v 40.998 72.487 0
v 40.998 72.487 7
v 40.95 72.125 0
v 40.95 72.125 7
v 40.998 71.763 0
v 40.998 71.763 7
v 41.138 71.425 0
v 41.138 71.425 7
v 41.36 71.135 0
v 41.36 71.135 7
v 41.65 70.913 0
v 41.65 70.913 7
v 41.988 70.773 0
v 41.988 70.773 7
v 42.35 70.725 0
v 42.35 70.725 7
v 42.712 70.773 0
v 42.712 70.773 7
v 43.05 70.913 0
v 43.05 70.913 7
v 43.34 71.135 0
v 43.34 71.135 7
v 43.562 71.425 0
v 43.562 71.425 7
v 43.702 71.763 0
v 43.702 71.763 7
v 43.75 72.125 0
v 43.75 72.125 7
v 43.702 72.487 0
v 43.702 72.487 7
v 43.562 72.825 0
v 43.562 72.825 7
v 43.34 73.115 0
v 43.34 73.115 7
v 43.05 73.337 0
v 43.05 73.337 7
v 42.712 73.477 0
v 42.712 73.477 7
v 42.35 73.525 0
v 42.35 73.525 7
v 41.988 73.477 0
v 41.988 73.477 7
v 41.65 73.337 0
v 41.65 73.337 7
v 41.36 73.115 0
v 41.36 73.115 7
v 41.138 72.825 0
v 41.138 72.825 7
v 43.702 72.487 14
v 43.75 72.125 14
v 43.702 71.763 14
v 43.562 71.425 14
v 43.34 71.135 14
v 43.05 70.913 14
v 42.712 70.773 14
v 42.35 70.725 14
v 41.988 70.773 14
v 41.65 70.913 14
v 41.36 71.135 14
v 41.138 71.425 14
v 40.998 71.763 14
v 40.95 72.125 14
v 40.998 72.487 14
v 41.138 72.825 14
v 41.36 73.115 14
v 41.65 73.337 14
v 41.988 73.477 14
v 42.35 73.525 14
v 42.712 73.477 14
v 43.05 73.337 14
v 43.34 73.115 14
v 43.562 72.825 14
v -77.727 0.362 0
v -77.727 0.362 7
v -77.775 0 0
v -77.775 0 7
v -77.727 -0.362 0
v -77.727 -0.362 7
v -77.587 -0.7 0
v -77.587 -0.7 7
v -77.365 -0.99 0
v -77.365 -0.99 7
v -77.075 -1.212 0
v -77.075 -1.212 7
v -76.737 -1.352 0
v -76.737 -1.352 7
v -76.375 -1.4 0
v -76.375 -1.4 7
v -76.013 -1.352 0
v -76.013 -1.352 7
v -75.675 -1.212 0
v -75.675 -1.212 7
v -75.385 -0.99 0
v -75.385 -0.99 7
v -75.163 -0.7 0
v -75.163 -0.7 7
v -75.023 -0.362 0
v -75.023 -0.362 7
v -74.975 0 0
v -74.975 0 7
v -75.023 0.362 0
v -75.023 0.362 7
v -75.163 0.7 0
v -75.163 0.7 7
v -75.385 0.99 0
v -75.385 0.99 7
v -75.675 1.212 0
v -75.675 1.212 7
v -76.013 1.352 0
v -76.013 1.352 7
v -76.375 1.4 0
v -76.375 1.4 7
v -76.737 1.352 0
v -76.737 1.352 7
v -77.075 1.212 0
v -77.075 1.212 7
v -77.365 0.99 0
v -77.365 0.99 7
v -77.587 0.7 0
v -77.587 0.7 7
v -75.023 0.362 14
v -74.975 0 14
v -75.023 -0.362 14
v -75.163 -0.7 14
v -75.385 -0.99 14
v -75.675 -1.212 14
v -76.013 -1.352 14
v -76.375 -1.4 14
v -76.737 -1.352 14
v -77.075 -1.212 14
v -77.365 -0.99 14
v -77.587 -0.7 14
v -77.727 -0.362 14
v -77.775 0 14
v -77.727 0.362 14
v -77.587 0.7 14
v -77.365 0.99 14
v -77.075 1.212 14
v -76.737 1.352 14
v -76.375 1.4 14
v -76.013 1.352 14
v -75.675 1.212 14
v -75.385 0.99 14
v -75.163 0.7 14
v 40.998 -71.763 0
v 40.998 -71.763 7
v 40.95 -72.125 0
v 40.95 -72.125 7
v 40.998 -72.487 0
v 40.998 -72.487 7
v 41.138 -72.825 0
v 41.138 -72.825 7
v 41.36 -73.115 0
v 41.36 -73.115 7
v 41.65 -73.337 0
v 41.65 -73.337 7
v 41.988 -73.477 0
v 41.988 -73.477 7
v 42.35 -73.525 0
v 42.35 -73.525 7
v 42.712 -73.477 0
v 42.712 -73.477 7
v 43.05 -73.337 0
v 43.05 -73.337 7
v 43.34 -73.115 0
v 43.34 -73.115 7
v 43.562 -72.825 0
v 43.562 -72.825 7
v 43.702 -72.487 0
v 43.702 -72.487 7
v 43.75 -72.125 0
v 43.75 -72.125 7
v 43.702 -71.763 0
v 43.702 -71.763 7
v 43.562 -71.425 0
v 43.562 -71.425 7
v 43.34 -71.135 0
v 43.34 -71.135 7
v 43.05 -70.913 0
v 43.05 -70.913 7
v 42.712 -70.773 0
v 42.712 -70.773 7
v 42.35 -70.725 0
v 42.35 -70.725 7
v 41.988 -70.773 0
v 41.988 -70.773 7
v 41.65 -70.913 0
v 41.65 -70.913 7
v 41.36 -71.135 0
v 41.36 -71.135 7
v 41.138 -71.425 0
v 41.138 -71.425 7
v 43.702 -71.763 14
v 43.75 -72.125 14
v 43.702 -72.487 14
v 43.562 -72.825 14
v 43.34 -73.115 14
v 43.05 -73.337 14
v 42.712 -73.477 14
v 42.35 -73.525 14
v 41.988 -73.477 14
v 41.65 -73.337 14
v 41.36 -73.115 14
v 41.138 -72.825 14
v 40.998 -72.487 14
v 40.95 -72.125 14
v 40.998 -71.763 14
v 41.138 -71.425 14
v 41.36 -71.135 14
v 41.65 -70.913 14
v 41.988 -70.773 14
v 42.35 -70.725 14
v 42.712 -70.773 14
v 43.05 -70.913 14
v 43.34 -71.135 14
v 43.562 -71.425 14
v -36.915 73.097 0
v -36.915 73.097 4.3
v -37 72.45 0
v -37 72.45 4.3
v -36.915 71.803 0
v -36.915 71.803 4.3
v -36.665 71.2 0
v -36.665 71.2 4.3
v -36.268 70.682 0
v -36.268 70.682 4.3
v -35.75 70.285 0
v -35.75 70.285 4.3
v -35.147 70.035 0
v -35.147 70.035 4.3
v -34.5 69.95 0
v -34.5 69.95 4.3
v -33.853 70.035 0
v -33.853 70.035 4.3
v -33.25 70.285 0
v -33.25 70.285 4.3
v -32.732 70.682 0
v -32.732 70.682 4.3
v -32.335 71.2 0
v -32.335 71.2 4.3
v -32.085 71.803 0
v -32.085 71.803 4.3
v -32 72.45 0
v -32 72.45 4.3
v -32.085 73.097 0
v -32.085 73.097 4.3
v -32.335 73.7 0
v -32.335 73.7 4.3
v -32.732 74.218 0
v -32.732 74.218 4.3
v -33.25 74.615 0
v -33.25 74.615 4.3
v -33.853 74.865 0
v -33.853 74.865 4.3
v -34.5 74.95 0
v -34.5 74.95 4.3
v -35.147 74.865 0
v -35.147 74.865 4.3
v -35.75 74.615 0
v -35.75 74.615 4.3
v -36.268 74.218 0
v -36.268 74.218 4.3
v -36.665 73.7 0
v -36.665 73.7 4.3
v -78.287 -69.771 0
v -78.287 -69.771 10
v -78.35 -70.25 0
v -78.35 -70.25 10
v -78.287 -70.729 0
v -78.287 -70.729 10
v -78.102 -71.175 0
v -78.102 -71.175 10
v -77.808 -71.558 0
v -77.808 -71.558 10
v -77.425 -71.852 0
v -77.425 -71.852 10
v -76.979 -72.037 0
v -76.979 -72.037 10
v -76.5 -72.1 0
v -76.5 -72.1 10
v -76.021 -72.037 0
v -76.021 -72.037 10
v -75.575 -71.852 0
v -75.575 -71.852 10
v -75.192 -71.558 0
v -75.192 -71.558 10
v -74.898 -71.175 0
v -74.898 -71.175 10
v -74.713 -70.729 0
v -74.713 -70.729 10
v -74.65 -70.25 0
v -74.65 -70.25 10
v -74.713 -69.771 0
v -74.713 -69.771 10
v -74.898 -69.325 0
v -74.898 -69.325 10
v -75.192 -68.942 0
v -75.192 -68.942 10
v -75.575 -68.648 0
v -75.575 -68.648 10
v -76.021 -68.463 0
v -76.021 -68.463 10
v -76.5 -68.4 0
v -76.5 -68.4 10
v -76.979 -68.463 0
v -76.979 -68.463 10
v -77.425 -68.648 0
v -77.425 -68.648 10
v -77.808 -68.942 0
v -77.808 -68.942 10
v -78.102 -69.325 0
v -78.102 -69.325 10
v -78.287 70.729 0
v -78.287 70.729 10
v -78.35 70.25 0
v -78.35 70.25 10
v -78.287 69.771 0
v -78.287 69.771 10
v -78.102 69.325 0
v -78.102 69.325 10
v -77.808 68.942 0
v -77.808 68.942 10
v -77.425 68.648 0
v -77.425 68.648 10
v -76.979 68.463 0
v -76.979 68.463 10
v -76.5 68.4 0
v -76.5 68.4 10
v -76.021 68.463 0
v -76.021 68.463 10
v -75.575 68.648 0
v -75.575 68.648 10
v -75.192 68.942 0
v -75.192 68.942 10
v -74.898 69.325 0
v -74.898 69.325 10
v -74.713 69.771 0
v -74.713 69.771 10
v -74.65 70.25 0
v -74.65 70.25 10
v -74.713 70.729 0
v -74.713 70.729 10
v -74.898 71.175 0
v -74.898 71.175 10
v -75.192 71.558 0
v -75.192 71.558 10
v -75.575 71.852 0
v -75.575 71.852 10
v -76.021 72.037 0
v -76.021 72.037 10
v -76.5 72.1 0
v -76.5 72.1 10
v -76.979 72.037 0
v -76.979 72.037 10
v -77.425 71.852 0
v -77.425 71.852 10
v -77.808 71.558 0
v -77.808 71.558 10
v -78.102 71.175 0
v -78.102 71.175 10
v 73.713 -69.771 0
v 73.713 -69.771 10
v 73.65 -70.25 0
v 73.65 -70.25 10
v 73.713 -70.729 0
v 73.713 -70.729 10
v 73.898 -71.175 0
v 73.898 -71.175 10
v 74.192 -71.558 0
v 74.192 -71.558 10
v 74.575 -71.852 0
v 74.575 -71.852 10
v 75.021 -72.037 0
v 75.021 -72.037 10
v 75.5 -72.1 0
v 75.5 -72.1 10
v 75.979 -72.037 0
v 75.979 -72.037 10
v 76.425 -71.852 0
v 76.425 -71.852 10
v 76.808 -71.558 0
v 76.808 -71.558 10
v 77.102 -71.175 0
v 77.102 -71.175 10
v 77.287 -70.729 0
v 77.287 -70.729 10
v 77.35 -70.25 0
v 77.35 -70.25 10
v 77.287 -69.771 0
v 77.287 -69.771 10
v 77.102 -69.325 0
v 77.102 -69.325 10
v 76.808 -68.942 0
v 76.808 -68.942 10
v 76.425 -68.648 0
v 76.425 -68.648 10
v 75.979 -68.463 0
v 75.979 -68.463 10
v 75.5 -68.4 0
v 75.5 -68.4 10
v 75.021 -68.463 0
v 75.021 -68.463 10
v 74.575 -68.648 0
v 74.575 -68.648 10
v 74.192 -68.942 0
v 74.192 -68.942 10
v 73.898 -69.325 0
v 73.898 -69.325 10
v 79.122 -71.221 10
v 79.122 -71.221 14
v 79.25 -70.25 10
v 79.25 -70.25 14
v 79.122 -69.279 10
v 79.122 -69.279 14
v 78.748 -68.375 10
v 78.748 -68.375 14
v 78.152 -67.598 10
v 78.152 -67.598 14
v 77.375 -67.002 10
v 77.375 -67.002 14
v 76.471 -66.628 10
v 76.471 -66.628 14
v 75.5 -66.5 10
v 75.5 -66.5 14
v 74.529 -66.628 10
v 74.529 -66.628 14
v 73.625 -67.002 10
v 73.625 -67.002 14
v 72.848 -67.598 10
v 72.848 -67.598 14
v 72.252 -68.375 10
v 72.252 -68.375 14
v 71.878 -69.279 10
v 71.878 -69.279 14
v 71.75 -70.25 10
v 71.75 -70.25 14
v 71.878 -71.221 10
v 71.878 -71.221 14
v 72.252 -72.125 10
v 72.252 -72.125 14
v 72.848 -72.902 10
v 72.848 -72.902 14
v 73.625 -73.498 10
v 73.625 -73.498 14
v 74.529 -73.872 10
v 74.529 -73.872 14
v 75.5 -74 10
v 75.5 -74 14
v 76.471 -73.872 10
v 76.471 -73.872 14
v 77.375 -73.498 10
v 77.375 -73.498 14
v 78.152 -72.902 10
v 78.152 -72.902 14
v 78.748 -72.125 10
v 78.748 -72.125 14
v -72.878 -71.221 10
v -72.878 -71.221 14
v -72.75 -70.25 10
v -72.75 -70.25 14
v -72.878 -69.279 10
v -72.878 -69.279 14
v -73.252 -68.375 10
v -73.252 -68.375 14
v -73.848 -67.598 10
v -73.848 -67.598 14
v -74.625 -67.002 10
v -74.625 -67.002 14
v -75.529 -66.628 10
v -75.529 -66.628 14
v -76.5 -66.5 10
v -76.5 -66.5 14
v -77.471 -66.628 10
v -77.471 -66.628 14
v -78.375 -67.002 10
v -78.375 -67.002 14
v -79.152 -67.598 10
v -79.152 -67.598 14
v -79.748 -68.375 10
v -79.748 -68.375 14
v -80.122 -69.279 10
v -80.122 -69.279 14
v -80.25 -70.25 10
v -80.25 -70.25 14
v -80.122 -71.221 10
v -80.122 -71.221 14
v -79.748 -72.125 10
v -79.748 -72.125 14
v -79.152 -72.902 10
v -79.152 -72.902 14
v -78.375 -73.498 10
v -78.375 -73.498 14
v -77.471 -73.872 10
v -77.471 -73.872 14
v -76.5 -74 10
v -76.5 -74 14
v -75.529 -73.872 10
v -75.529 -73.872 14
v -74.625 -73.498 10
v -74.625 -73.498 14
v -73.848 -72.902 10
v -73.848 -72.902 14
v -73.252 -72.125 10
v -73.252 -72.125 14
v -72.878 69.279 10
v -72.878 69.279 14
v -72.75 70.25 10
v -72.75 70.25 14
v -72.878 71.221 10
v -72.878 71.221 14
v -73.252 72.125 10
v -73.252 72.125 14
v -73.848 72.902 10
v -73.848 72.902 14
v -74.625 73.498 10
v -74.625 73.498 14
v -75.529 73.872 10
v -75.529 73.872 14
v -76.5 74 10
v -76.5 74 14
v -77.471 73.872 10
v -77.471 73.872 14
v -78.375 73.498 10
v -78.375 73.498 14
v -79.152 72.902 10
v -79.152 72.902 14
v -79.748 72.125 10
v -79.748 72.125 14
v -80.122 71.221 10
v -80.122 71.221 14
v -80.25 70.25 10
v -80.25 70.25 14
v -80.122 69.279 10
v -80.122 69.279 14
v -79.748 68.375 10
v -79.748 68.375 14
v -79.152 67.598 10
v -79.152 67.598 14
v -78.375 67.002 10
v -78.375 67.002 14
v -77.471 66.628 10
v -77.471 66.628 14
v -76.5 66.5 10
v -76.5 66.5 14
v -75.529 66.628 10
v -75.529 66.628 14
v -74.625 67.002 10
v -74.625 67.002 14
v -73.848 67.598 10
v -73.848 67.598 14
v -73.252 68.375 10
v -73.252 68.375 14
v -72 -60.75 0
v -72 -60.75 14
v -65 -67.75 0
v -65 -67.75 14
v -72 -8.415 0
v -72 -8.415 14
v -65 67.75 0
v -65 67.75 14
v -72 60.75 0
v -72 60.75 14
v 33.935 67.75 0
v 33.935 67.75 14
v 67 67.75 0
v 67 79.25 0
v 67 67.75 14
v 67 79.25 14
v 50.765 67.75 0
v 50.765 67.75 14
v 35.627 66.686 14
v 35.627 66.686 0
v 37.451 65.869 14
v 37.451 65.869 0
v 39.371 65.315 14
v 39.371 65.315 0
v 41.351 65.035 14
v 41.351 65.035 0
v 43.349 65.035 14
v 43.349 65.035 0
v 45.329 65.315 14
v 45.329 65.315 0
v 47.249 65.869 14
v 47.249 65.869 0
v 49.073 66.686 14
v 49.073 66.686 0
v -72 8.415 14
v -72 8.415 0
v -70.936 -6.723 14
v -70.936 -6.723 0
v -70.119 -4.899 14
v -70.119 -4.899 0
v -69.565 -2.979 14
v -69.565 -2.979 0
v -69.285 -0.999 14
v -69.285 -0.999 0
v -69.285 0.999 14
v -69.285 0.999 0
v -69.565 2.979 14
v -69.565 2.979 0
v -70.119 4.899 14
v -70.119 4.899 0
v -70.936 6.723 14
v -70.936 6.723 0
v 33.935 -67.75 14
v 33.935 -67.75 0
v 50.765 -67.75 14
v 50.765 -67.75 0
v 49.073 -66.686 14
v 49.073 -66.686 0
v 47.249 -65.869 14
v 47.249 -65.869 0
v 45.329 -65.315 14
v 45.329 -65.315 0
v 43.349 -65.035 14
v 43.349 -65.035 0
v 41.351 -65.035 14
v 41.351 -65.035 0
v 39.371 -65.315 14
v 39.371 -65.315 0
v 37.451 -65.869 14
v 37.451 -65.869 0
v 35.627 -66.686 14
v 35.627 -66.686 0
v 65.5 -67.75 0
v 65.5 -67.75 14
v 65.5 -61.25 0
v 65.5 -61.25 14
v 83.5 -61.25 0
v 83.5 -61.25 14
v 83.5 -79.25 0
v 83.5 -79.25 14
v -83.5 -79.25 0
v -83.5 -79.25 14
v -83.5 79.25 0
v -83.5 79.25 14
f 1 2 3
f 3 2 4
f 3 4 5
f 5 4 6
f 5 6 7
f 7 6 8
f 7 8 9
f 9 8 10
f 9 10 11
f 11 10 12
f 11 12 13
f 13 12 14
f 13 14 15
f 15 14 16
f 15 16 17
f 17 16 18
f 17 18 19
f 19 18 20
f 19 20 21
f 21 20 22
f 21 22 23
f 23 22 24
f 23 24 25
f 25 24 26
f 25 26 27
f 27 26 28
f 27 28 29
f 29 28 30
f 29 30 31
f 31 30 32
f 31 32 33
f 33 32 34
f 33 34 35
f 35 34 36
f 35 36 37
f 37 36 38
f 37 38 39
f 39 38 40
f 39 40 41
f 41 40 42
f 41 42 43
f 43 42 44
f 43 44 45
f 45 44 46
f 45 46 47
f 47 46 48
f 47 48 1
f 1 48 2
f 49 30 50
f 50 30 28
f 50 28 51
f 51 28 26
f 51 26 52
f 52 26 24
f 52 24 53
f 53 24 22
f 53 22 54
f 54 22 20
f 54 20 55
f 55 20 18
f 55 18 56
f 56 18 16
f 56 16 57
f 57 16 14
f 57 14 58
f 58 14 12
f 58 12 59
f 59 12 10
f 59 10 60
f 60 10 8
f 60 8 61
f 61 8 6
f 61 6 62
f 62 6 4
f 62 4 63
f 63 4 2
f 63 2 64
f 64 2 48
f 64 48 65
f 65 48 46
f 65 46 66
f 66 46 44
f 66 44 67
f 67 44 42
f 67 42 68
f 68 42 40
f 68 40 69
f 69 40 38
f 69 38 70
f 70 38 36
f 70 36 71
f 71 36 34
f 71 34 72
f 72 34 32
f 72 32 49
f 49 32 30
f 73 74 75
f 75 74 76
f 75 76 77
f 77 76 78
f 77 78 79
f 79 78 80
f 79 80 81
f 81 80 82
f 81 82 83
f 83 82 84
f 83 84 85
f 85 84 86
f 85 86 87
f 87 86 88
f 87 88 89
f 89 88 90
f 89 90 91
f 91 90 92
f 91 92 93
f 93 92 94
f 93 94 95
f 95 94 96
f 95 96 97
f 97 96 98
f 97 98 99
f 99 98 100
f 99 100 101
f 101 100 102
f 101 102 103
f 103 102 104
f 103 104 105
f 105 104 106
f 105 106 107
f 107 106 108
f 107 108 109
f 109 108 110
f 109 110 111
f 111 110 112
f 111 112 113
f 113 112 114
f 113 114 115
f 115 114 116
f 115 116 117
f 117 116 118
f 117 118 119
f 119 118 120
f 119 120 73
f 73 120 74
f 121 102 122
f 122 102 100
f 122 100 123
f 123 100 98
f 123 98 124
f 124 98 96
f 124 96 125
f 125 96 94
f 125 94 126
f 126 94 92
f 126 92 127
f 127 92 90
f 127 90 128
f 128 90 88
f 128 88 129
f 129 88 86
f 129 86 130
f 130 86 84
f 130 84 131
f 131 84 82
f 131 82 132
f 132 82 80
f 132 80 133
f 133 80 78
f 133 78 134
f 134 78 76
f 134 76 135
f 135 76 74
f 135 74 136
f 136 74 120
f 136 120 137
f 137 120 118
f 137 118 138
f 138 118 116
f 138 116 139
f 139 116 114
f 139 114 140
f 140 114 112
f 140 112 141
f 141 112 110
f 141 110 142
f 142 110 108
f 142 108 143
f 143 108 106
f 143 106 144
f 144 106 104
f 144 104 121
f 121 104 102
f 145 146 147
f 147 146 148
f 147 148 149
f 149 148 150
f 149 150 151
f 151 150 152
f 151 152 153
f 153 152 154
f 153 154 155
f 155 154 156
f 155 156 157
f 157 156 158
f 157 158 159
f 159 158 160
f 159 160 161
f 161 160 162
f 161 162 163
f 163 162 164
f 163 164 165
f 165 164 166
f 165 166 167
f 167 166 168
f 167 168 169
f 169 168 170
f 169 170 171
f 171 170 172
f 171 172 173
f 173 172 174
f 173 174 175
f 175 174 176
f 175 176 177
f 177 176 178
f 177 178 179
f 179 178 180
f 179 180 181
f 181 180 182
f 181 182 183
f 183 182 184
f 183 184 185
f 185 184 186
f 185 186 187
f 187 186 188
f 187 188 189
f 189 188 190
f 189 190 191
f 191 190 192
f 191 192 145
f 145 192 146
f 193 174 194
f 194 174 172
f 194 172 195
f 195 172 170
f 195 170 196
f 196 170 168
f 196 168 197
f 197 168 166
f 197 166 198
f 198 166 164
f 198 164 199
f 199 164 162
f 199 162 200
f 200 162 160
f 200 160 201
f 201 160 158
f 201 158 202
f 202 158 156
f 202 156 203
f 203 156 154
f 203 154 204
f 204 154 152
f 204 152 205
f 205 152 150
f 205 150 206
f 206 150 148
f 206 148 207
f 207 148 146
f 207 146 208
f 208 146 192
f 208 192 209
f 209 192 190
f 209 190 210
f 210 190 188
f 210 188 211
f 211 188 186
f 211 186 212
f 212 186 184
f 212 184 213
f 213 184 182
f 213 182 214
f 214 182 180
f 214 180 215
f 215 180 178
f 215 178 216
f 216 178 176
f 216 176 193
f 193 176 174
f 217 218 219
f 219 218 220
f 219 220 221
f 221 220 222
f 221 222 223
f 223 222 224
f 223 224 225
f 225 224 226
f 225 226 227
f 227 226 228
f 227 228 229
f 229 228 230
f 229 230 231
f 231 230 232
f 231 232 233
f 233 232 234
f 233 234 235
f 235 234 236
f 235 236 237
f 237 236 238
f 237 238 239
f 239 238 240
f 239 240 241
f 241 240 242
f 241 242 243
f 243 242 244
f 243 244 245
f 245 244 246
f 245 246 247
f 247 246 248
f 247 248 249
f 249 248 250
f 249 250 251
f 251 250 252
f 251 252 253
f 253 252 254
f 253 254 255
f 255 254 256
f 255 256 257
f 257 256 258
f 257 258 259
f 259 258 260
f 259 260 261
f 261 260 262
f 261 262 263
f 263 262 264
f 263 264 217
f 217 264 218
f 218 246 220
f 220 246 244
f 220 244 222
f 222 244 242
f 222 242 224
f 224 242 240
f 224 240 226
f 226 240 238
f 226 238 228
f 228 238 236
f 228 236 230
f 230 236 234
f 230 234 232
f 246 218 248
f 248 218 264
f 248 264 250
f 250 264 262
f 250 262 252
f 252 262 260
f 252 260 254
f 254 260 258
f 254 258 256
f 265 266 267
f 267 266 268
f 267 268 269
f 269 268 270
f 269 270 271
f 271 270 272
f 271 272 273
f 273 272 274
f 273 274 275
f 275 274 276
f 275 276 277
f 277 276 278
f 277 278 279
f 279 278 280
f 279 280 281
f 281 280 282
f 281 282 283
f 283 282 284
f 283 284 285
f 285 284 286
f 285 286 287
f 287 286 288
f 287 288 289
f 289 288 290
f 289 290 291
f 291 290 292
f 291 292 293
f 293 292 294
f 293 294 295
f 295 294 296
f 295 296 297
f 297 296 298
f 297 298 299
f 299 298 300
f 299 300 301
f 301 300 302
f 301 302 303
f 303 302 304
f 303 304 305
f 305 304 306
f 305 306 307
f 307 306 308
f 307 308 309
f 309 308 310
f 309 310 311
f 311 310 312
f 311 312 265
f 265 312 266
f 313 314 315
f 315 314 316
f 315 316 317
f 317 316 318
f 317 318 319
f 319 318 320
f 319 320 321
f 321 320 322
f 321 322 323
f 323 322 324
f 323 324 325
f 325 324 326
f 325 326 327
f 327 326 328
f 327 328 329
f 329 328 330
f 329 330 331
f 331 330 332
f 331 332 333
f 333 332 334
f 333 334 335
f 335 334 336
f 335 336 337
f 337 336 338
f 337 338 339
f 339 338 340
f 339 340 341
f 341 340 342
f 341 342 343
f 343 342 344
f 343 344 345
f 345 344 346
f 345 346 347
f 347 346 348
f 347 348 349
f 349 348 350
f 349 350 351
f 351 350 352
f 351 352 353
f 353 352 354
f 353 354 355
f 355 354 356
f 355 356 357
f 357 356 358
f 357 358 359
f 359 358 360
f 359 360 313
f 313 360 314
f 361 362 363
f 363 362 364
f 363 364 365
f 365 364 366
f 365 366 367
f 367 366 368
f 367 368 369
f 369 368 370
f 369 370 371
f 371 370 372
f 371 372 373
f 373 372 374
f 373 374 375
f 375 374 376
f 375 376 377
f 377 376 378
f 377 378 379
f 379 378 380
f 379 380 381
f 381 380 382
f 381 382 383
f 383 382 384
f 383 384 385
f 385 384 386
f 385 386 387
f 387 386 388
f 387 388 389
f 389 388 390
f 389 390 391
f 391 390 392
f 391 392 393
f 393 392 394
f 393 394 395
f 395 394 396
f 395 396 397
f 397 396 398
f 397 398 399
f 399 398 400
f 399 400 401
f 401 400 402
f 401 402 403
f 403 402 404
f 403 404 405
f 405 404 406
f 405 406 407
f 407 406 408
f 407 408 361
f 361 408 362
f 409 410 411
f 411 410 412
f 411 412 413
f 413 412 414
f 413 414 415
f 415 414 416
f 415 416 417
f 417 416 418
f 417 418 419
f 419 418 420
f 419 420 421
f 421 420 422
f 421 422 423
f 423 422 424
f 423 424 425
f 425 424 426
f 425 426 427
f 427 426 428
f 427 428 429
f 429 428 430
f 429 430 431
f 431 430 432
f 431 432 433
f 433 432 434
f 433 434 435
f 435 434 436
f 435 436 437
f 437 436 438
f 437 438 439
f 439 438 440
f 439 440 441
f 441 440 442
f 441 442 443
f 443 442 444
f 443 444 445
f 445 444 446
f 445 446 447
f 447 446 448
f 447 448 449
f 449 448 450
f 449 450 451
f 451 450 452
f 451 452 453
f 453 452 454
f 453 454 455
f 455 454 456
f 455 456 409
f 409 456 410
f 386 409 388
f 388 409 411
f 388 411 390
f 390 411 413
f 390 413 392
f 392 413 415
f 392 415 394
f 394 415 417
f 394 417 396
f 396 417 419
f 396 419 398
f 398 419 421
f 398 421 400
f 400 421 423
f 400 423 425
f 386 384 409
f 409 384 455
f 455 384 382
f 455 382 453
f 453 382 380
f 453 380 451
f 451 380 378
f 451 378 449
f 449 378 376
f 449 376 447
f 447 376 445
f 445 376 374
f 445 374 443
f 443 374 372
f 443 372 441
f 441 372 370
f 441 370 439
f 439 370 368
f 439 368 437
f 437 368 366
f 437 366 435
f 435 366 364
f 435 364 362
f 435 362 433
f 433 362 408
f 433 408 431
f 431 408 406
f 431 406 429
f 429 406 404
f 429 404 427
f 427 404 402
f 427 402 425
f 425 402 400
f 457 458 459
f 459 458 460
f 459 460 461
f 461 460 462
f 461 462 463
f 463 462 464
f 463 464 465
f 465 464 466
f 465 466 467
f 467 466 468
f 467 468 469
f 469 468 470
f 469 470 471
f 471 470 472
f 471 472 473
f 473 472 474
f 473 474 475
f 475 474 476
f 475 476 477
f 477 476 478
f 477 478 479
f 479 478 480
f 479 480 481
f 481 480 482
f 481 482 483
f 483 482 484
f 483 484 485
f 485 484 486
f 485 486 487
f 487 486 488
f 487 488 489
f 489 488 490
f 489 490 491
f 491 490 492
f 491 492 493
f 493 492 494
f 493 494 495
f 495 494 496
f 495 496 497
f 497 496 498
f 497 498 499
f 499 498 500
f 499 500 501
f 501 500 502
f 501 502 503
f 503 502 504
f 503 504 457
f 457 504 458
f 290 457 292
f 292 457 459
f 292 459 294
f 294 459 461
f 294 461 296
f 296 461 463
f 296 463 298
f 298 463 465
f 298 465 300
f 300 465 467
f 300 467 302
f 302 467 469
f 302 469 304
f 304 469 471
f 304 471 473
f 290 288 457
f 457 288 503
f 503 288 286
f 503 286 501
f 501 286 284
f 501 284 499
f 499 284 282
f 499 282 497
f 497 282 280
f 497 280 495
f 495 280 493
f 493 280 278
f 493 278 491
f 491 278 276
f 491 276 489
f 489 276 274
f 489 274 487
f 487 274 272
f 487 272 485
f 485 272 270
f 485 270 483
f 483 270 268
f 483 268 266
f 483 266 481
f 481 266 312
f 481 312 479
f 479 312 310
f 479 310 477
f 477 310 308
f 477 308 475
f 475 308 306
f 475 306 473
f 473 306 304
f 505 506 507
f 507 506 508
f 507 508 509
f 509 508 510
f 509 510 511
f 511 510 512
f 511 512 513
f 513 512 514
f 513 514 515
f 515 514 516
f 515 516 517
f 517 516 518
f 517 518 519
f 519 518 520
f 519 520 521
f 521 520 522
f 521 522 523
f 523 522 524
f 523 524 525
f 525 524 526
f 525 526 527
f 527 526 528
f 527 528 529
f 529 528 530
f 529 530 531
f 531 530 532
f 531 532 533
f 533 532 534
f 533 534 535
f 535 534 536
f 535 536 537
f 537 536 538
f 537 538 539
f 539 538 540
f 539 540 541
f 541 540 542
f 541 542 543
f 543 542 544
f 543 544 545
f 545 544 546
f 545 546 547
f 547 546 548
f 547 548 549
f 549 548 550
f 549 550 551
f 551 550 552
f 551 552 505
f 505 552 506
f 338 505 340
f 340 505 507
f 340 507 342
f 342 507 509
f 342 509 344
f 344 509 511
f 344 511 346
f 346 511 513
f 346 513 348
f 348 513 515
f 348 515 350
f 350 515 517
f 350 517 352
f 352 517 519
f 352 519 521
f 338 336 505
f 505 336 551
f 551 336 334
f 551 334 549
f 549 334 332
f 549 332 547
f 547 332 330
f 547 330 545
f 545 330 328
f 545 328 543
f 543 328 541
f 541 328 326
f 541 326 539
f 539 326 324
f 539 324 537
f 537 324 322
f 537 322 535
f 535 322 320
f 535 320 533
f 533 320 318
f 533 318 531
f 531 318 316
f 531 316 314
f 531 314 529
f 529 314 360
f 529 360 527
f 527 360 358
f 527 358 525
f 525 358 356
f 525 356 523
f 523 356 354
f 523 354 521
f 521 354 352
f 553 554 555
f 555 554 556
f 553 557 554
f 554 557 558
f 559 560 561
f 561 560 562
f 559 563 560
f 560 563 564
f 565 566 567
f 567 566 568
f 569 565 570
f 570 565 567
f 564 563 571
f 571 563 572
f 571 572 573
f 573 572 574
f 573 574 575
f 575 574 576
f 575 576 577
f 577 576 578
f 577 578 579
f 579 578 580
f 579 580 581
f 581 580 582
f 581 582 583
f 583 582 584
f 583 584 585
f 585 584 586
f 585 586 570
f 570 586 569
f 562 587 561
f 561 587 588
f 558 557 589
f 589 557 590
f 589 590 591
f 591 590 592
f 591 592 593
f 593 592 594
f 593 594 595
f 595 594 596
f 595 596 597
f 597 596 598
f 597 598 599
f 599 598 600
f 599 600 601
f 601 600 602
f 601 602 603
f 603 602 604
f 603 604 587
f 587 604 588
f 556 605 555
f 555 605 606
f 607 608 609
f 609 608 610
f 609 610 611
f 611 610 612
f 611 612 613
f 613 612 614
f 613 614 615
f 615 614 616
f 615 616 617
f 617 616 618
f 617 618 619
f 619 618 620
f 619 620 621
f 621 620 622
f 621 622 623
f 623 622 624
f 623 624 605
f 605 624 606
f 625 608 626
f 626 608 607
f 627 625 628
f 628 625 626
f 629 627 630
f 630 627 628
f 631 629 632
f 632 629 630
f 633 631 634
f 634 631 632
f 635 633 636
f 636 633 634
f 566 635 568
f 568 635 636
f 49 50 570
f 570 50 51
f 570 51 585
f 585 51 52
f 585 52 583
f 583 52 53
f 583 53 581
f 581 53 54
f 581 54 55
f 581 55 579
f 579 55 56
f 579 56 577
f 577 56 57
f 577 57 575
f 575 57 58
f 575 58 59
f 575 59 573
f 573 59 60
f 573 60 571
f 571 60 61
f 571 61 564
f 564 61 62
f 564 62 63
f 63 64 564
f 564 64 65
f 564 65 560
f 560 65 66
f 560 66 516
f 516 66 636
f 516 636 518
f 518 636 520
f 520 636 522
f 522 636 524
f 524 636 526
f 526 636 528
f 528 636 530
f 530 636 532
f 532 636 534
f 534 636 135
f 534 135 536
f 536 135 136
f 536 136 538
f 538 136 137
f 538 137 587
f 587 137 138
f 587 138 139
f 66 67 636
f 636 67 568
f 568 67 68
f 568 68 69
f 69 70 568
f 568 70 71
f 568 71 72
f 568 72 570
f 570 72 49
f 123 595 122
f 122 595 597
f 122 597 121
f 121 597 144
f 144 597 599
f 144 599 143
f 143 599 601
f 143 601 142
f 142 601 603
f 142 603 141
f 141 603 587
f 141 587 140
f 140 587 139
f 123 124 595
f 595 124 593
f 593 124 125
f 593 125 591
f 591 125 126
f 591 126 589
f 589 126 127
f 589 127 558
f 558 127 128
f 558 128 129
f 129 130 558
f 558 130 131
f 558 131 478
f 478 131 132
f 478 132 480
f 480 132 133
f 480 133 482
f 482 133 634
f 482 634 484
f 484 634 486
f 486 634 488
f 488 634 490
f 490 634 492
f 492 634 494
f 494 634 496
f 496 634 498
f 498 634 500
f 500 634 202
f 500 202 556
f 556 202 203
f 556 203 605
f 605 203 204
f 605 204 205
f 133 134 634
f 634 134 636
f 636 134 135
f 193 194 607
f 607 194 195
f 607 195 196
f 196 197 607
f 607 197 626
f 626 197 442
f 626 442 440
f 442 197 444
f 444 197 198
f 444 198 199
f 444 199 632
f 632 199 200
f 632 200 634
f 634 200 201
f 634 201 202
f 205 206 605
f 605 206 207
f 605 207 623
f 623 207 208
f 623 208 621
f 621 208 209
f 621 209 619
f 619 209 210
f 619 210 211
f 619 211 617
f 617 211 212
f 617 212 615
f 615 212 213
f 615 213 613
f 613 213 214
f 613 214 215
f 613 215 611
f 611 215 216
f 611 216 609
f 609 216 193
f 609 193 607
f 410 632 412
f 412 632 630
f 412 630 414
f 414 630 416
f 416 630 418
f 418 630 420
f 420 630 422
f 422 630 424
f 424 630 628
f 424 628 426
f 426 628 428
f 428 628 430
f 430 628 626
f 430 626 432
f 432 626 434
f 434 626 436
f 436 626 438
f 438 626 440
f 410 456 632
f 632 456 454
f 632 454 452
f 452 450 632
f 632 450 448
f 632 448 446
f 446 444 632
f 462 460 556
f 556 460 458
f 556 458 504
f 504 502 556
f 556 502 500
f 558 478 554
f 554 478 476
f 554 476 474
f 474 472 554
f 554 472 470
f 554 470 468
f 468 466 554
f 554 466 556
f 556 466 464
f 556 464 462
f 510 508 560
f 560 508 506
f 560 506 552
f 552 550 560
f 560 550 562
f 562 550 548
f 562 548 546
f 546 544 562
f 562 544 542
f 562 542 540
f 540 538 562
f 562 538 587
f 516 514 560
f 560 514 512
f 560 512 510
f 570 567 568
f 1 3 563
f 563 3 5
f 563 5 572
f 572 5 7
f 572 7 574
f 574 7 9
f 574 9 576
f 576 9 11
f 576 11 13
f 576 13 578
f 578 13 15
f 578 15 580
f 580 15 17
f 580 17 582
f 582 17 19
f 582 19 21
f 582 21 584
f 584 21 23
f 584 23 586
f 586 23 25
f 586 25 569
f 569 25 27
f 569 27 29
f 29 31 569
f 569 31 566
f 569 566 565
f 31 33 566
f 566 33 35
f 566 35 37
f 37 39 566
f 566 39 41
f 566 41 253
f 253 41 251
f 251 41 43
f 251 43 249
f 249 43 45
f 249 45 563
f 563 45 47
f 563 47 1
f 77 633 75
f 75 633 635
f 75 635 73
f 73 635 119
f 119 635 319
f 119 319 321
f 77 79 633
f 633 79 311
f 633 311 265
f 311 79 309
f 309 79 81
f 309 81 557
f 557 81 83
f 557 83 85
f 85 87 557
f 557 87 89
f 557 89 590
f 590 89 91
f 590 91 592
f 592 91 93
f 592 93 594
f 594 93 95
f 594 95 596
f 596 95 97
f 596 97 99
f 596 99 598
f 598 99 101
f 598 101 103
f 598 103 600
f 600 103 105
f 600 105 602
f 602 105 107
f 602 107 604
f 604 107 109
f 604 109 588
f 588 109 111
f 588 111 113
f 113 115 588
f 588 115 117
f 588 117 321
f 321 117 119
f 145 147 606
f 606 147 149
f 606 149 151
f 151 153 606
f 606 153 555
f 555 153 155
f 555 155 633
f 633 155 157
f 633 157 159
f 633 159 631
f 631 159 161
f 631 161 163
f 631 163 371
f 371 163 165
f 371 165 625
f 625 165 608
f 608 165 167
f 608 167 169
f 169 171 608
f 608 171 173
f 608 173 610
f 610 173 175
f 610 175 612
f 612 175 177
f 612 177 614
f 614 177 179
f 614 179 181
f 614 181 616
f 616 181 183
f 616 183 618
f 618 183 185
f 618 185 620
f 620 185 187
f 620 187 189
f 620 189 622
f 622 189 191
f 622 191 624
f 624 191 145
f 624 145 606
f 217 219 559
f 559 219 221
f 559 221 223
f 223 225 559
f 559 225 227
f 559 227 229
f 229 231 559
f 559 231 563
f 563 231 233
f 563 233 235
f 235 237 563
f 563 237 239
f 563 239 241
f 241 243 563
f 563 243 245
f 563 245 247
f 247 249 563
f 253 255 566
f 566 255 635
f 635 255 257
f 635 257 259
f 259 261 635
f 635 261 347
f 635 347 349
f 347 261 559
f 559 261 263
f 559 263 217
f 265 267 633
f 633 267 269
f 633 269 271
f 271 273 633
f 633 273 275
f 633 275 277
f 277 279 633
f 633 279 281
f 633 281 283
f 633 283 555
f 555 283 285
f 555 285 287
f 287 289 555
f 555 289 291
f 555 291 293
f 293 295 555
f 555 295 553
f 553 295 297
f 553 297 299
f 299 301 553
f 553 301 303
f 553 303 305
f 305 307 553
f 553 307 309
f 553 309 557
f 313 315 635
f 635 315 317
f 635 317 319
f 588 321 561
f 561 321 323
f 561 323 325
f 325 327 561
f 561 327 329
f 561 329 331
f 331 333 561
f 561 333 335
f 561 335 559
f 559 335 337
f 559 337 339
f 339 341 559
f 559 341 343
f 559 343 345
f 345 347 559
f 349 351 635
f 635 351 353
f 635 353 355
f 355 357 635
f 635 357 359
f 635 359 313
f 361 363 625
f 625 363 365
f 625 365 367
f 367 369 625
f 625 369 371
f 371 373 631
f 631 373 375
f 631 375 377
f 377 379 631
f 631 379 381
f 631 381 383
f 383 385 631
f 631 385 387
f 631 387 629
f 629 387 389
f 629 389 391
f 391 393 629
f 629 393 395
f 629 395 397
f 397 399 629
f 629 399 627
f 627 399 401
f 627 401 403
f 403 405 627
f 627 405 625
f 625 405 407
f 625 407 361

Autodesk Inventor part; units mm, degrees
ref_plane "YZ Plane" through (0, 0, 0) normal (1, 0, 0) x (0, 1, 0)
ref_plane "XZ Plane" through (0, 0, 0) normal (0, 1, 0) x (-1, 0, 0)
ref_plane "XY Plane" through (0, 0, 0) normal (0, 0, 1) x (1, 0, 0)
sketch "Náčrt1" plane through (0, 0, 0) normal (0, 0, 1) x (1, 0, 0)
  line L0 (0, 110.95) -> (0, -110.95) projected
  line L1 (-116.9, 0) -> (116.9, 0) projected
  line L2 (67, 79.25) -> (-83.5, 79.25)
  line L3 (-83.5, 79.25) -> (-83.5, -79.25)
  line L4 (-83.5, -79.25) -> (83.5, -79.25)
  line L5 (83.5, -79.25) -> (83.5, -61.25)
  line L6 (83.5, -61.25) -> (65.5, -61.25)
  line L7 (65.5, -61.25) -> (65.5, -67.75)
  line L8 (65.5, -67.75) -> (-72, -67.75)
  line L9 (-72, -67.75) -> (-72, 67.75)
  line L10 (-72, 67.75) -> (67, 67.75)
  line L11 (67, 67.75) -> (67, 79.25)
  arc A0 (-72, -8.415) -> (-72, 8.415) centre (-83.5, 0) ccw
  arc A1 (33.935, 67.75) -> (50.765, 67.75) centre (42.35, 79.25) ccw
  arc A2 (50.765, -67.75) -> (33.935, -67.75) centre (42.35, -79.25) ccw
  point P0 (0, 0)
  dimension "d0" = 11.5
  dimension "d1" = 11.5
  dimension "d2" = 11.5
  dimension "d3" = 150.5
  dimension "d4" = 158.5
  dimension "d5" = 167
  dimension "d6" = 18
  dimension "d7" = 18
  dimension "d8" = 83.5
  dimension "d32" = 28.5
  dimension "d33" = 28.5
  dimension "d35" = 42.35
  dimension "d36" = 42.35
  dimension "d37" = 14.25
extrude "Vysunutí1" add sketch "Náčrt1" along normal blind 14 contours L2 L11 L10 L0 | L0 L10 L9 L1 L3 L2 | L10 A1 | L1 L9 L8 L0 L4 L3 | L8 L7 L6 L5 L4 L0 | A0 L9 L1 | L1 L9 A0 | A2 L8
chamfer "Zkosení1" distance 7 angle 45 2 edges at (-72, 67.75, 7) (-72, -67.75, 7)
sketch "Náčrt2" plane through (0, 0, 14) normal (0, 0, 1) x (1, 0, 0)
  line L0 (67, 79.25) -> (-83.5, 79.25) projected
  line L1 (-83.5, 79.25) -> (-83.5, -79.25) projected
  line L2 (-83.5, -79.25) -> (83.5, -79.25) projected
  line L3 (83.5, -79.25) -> (83.5, -61.25) projected
  line L4 (83.5, -61.25) -> (65.5, -61.25) projected
  line L5 (65.5, -61.25) -> (65.5, -67.75) projected
  line L6 (65.5, -67.75) -> (50.765, -67.75) projected
  line L7 (-72, -60.75) -> (-65, -67.75) projected
  line L8 (-72, -60.75) -> (-72, -8.415) projected
  line L9 (-65, 67.75) -> (-72, 60.75) projected
  line L10 (-65, 67.75) -> (33.935, 67.75) projected
  line L11 (67, 67.75) -> (67, 79.25) projected
  line L12 (0, 110.95) -> (0, -110.95) projected
  line L13 (-116.9, 0) -> (116.9, 0) projected
  circle A0 centre (-76.5, 70.25) radius 3.75
  circle A1 centre (-76.5, -70.25) radius 3.75
  circle A2 centre (75.5, -70.25) radius 3.75
  arc A3 (50.765, -67.75) -> (33.935, -67.75) centre (42.35, -79.25) ccw projected
  line L14 (33.935, -67.75) -> (-65, -67.75) projected
  arc A4 (-72, -8.415) -> (-72, 8.415) centre (-83.5, 0) ccw projected
  line L15 (-72, 8.415) -> (-72, 60.75) projected
  arc A5 (33.935, 67.75) -> (50.765, 67.75) centre (42.35, 79.25) ccw projected
  line L16 (50.765, 67.75) -> (67, 67.75) projected
  point P0 (0, 0)
  dimension "d14" = 7.5
  dimension "d15" = 7.5
  dimension "d16" = 7.5
  dimension "d17" = 9
  dimension "d18" = 9
  dimension "d19" = 9
  dimension "d20" = 7
  dimension "d21" = 7
  dimension "d22" = 8
extrude "Vysunutí2" cut sketch "Náčrt2" against normal blind 4 contours A0 | A1 | A2
sketch "Náčrt3" plane through (-76.5, 70.25, 10) normal (0, 0, 1) x (1, 0, 0)
  circle A0 centre (0, 0) radius 3.75 projected
  circle A1 centre (0, -140.5) radius 3.75 projected
  circle A2 centre (152, -140.5) radius 3.75 projected
  circle A3 centre (0, 0) radius 3.75 projected
  point P0 (76.5, -70.25)
hole "Díra1" at (-76.5, 70.25, 10) at (-76.5, -70.25, 10) at (75.5, -70.25, 10) direction (0, 0, -1) diameter 3.7 end through all
sketch "Náčrt4" plane through (0, 0, 0) normal (0, 0, -1) x (-1, 0, 0)
  circle A0 centre (76.5, -70.25) radius 1.85 projected
  circle A1 centre (76.5, 70.25) radius 1.85 projected
  circle A2 centre (-75.5, -70.25) radius 1.85 projected
  line L0 (-67, 79.25) -> (83.5, 79.25) projected
  line L1 (-67, 67.75) -> (-67, 79.25) projected
  line L2 (-50.765, 67.75) -> (-67, 67.75) projected
  arc A3 (-50.765, 67.75) -> (-33.935, 67.75) centre (-42.35, 79.25) ccw projected
  line L3 (65, 67.75) -> (-33.935, 67.75) projected
  line L4 (72, 60.75) -> (65, 67.75) projected
  line L5 (72, 8.415) -> (72, 60.75) projected
  arc A4 (72, 8.415) -> (72, -8.415) centre (83.5, 0) ccw projected
  line L6 (72, -60.75) -> (72, -8.415) projected
  line L7 (65, -67.75) -> (72, -60.75) projected
  line L8 (-33.935, -67.75) -> (65, -67.75) projected
  arc A5 (-33.935, -67.75) -> (-50.765, -67.75) centre (-42.35, -79.25) ccw projected
  line L9 (-65.5, -67.75) -> (-50.765, -67.75) projected
  line L10 (-65.5, -61.25) -> (-65.5, -67.75) projected
  line L11 (-83.5, -61.25) -> (-65.5, -61.25) projected
  line L12 (-83.5, -79.25) -> (-83.5, -61.25) projected
  line L13 (83.5, -79.25) -> (-83.5, -79.25) projected
  line L14 (83.5, 79.25) -> (83.5, -79.25) projected
  line L15 (0, -110.95) -> (0, 110.95) projected
  line L16 (-116.9, 0) -> (116.9, 0) projected
  point P0 (0, 0)
  point P1 (34.5, 72.45)
  dimension "d38" = 49
  dimension "d39" = 6.8
hole "Díra2" at (-34.5, 72.45, 0) direction (0, 0, 1) diameter 5 depth 4.3
sketch "Náčrt5" plane through (0, 0, 14) normal (0, 0, 1) x (1, 0, 0)
  arc A0 (33.935, 67.75) -> (50.765, 67.75) centre (42.35, 79.25) ccw projected
  arc A1 (-72, -8.415) -> (-72, 8.415) centre (-83.5, 0) ccw projected
  arc A2 (50.765, -67.75) -> (33.935, -67.75) centre (42.35, -79.25) ccw projected
  line L0 (-116.9, 0) -> (116.9, 0) projected
  line L1 (0, 110.95) -> (0, -110.95) projected
  circle A3 centre (75.5, -70.25) radius 3.75 projected
  circle A4 centre (-76.5, -70.25) radius 3.75 projected
  circle A5 centre (-76.5, 70.25) radius 3.75 projected
  line L2 (67, 79.25) -> (-83.5, 79.25) projected
  line L3 (-83.5, 79.25) -> (-83.5, -79.25) projected
  line L4 (-83.5, -79.25) -> (83.5, -79.25) projected
  line L5 (83.5, -79.25) -> (83.5, -61.25) projected
  line L6 (83.5, -61.25) -> (65.5, -61.25) projected
  line L7 (65.5, -61.25) -> (65.5, -67.75) projected
  line L8 (65.5, -67.75) -> (50.765, -67.75) projected
  arc A6 (50.765, -67.75) -> (33.935, -67.75) centre (42.35, -79.25) ccw projected
  line L9 (33.935, -67.75) -> (-65, -67.75) projected
  line L10 (-72, -60.75) -> (-65, -67.75) projected
  line L11 (-72, -60.75) -> (-72, -8.415) projected
  arc A7 (-72, -8.415) -> (-72, 8.415) centre (-83.5, 0) ccw projected
  line L12 (-72, 8.415) -> (-72, 60.75) projected
  line L13 (-65, 67.75) -> (-72, 60.75) projected
  line L14 (-65, 67.75) -> (33.935, 67.75) projected
  arc A8 (33.935, 67.75) -> (50.765, 67.75) centre (42.35, 79.25) ccw projected
  line L15 (50.765, 67.75) -> (67, 67.75) projected
  line L16 (67, 67.75) -> (67, 79.25) projected
  point P0 (0, 0)
  point P1 (-76.375, 0)
  point P2 (42.35, 72.125)
  point P3 (42.35, -72.125)
  dimension "d47" = 7.125
  dimension "d48" = 42.35
  dimension "d49" = 7.125
  dimension "d50" = 42.35
  dimension "d51" = 7.125
hole "Díra3" at (-76.375, 0, 14) at (42.35, 72.125, 14) at (42.35, -72.125, 14) direction (0, 0, -1) diameter 2.8 depth 14
equation "\"d49\" = d47"
equation "\"d51\" = d47"
properties part number "display_cover_part2" material "Polystyren"
